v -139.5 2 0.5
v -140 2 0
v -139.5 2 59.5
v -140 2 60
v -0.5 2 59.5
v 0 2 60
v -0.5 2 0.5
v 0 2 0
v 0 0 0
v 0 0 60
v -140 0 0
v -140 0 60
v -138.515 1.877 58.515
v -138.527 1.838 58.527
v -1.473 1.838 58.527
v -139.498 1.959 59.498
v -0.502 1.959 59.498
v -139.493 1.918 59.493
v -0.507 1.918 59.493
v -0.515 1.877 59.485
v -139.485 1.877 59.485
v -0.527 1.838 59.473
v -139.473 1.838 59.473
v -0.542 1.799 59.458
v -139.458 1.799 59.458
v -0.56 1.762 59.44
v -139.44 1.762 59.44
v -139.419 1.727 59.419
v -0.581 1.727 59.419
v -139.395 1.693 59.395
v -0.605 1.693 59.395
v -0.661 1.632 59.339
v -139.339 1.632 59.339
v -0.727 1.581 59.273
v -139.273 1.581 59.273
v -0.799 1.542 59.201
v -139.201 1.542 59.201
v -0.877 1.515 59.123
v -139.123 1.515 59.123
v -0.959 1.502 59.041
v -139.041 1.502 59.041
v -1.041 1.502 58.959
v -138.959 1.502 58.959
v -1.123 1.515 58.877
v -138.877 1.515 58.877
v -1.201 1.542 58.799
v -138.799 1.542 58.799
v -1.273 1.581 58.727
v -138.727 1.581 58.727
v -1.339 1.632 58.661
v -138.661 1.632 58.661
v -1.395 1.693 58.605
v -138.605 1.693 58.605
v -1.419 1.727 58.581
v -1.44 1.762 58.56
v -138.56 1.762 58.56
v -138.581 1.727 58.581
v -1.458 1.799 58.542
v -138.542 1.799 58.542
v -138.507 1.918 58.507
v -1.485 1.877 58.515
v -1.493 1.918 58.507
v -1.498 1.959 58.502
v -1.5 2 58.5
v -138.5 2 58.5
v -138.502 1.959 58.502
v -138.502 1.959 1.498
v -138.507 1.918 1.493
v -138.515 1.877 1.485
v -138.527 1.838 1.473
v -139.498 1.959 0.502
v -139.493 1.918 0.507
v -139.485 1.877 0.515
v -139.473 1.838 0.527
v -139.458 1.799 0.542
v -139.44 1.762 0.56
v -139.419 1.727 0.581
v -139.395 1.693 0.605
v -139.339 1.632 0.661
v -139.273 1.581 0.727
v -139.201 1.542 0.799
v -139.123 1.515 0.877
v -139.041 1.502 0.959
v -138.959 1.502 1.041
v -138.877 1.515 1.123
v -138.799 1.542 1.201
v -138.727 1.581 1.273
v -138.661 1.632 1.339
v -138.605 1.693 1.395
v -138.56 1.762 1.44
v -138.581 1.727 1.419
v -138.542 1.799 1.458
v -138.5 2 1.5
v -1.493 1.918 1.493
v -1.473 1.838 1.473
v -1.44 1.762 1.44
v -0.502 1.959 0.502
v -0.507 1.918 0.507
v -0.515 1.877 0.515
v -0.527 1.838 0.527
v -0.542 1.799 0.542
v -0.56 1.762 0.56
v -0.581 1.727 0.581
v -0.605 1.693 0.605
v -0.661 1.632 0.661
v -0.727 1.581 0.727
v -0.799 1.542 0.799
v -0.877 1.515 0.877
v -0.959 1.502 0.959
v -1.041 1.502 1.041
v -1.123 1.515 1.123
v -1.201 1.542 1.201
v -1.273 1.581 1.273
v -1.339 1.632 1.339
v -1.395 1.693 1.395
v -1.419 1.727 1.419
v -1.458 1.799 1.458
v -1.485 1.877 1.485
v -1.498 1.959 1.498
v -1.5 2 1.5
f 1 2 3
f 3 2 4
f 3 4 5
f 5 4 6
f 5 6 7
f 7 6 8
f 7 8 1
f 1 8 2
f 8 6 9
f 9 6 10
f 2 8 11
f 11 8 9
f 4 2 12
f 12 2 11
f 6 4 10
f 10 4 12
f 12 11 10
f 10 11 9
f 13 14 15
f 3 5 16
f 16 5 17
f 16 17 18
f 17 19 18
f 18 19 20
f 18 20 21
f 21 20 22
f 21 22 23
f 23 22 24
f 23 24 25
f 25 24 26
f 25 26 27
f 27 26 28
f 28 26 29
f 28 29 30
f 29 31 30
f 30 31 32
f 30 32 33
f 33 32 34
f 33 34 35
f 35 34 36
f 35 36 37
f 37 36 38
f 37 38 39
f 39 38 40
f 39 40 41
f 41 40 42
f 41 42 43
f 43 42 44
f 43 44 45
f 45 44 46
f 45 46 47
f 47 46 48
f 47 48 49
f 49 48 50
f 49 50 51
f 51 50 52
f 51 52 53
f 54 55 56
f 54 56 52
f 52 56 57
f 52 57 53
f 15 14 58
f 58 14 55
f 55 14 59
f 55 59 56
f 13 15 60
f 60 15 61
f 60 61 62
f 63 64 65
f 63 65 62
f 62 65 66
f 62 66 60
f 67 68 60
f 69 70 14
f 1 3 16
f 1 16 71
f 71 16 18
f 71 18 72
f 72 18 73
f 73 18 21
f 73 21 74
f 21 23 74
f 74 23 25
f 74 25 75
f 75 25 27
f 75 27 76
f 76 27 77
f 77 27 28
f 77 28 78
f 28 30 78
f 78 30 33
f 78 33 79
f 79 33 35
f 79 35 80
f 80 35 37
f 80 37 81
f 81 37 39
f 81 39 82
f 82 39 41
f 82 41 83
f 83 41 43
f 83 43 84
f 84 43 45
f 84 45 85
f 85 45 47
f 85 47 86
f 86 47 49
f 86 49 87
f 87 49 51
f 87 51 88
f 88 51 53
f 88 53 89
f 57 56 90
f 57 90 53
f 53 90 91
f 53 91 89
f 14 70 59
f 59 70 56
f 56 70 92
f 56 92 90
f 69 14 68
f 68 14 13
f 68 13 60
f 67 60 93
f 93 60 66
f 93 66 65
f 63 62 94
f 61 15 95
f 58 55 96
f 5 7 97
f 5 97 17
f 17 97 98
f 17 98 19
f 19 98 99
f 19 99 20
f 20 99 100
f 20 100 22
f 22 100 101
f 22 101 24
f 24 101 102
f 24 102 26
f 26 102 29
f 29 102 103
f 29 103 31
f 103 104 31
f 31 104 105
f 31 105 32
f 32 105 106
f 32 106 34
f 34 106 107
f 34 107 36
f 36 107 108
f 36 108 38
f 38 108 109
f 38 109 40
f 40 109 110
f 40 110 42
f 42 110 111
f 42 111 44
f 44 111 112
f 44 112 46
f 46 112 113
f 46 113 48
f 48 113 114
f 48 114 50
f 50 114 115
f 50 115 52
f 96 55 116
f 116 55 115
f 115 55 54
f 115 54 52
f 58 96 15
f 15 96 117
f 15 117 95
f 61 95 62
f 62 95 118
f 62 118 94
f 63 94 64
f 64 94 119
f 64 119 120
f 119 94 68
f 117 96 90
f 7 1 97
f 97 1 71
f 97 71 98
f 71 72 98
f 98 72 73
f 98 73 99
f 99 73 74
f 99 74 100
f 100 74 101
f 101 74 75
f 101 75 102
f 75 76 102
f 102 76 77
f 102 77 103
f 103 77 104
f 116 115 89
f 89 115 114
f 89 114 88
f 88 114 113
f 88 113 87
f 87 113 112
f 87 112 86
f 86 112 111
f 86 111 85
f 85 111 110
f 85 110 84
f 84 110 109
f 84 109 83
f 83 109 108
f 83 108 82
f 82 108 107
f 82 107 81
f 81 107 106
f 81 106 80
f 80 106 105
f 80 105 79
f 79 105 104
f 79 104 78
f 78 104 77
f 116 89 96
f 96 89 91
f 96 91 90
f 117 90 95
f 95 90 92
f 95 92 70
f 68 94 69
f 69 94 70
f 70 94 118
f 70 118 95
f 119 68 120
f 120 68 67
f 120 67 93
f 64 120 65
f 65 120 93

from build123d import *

# Parameters (mm, degrees)
SKETCH1_W            = 140
SKETCH1_H            = 60
BOSS_EXTRUDE1_DEPTH  = 2
CUT_SWEEP1_PROFILE_R = 0.5


with BuildPart() as part:
    # Sketch1 → Boss-Extrude1 (new body)
    with BuildSketch(Plane(origin=(0, 0, 0), x_dir=(1, 0, 0), z_dir=(0, 1, 0))):
        with Locations((-70, -30)):
            Rectangle(SKETCH1_W, SKETCH1_H)
    extrude(amount=BOSS_EXTRUDE1_DEPTH)

    # Cut-Sweep1: sweep along a path in Sketch2
    with BuildLine(Plane(origin=(0, 2, 0), x_dir=(1, 0, 0), z_dir=(0, 1, 0))) as cut_sweep1_path:
        Line((-1, -59), (-1, -1))
        Line((-1, -1), (-139, -1))
        Line((-139, -1), (-139, -59))
        Line((-139, -59), (-1, -59))
    # Cut-Sweep1 profile (on start of the path) → Cut-Sweep1 (sweep, cut)
    with BuildSketch(Plane(origin=(-1, 2, 59), x_dir=(-1, 0, 0), z_dir=(0, 0, -1))):
        Circle(CUT_SWEEP1_PROFILE_R)
    sweep(path=cut_sweep1_path.line, transition=Transition.RIGHT, mode=Mode.SUBTRACT)


solid = part.part
